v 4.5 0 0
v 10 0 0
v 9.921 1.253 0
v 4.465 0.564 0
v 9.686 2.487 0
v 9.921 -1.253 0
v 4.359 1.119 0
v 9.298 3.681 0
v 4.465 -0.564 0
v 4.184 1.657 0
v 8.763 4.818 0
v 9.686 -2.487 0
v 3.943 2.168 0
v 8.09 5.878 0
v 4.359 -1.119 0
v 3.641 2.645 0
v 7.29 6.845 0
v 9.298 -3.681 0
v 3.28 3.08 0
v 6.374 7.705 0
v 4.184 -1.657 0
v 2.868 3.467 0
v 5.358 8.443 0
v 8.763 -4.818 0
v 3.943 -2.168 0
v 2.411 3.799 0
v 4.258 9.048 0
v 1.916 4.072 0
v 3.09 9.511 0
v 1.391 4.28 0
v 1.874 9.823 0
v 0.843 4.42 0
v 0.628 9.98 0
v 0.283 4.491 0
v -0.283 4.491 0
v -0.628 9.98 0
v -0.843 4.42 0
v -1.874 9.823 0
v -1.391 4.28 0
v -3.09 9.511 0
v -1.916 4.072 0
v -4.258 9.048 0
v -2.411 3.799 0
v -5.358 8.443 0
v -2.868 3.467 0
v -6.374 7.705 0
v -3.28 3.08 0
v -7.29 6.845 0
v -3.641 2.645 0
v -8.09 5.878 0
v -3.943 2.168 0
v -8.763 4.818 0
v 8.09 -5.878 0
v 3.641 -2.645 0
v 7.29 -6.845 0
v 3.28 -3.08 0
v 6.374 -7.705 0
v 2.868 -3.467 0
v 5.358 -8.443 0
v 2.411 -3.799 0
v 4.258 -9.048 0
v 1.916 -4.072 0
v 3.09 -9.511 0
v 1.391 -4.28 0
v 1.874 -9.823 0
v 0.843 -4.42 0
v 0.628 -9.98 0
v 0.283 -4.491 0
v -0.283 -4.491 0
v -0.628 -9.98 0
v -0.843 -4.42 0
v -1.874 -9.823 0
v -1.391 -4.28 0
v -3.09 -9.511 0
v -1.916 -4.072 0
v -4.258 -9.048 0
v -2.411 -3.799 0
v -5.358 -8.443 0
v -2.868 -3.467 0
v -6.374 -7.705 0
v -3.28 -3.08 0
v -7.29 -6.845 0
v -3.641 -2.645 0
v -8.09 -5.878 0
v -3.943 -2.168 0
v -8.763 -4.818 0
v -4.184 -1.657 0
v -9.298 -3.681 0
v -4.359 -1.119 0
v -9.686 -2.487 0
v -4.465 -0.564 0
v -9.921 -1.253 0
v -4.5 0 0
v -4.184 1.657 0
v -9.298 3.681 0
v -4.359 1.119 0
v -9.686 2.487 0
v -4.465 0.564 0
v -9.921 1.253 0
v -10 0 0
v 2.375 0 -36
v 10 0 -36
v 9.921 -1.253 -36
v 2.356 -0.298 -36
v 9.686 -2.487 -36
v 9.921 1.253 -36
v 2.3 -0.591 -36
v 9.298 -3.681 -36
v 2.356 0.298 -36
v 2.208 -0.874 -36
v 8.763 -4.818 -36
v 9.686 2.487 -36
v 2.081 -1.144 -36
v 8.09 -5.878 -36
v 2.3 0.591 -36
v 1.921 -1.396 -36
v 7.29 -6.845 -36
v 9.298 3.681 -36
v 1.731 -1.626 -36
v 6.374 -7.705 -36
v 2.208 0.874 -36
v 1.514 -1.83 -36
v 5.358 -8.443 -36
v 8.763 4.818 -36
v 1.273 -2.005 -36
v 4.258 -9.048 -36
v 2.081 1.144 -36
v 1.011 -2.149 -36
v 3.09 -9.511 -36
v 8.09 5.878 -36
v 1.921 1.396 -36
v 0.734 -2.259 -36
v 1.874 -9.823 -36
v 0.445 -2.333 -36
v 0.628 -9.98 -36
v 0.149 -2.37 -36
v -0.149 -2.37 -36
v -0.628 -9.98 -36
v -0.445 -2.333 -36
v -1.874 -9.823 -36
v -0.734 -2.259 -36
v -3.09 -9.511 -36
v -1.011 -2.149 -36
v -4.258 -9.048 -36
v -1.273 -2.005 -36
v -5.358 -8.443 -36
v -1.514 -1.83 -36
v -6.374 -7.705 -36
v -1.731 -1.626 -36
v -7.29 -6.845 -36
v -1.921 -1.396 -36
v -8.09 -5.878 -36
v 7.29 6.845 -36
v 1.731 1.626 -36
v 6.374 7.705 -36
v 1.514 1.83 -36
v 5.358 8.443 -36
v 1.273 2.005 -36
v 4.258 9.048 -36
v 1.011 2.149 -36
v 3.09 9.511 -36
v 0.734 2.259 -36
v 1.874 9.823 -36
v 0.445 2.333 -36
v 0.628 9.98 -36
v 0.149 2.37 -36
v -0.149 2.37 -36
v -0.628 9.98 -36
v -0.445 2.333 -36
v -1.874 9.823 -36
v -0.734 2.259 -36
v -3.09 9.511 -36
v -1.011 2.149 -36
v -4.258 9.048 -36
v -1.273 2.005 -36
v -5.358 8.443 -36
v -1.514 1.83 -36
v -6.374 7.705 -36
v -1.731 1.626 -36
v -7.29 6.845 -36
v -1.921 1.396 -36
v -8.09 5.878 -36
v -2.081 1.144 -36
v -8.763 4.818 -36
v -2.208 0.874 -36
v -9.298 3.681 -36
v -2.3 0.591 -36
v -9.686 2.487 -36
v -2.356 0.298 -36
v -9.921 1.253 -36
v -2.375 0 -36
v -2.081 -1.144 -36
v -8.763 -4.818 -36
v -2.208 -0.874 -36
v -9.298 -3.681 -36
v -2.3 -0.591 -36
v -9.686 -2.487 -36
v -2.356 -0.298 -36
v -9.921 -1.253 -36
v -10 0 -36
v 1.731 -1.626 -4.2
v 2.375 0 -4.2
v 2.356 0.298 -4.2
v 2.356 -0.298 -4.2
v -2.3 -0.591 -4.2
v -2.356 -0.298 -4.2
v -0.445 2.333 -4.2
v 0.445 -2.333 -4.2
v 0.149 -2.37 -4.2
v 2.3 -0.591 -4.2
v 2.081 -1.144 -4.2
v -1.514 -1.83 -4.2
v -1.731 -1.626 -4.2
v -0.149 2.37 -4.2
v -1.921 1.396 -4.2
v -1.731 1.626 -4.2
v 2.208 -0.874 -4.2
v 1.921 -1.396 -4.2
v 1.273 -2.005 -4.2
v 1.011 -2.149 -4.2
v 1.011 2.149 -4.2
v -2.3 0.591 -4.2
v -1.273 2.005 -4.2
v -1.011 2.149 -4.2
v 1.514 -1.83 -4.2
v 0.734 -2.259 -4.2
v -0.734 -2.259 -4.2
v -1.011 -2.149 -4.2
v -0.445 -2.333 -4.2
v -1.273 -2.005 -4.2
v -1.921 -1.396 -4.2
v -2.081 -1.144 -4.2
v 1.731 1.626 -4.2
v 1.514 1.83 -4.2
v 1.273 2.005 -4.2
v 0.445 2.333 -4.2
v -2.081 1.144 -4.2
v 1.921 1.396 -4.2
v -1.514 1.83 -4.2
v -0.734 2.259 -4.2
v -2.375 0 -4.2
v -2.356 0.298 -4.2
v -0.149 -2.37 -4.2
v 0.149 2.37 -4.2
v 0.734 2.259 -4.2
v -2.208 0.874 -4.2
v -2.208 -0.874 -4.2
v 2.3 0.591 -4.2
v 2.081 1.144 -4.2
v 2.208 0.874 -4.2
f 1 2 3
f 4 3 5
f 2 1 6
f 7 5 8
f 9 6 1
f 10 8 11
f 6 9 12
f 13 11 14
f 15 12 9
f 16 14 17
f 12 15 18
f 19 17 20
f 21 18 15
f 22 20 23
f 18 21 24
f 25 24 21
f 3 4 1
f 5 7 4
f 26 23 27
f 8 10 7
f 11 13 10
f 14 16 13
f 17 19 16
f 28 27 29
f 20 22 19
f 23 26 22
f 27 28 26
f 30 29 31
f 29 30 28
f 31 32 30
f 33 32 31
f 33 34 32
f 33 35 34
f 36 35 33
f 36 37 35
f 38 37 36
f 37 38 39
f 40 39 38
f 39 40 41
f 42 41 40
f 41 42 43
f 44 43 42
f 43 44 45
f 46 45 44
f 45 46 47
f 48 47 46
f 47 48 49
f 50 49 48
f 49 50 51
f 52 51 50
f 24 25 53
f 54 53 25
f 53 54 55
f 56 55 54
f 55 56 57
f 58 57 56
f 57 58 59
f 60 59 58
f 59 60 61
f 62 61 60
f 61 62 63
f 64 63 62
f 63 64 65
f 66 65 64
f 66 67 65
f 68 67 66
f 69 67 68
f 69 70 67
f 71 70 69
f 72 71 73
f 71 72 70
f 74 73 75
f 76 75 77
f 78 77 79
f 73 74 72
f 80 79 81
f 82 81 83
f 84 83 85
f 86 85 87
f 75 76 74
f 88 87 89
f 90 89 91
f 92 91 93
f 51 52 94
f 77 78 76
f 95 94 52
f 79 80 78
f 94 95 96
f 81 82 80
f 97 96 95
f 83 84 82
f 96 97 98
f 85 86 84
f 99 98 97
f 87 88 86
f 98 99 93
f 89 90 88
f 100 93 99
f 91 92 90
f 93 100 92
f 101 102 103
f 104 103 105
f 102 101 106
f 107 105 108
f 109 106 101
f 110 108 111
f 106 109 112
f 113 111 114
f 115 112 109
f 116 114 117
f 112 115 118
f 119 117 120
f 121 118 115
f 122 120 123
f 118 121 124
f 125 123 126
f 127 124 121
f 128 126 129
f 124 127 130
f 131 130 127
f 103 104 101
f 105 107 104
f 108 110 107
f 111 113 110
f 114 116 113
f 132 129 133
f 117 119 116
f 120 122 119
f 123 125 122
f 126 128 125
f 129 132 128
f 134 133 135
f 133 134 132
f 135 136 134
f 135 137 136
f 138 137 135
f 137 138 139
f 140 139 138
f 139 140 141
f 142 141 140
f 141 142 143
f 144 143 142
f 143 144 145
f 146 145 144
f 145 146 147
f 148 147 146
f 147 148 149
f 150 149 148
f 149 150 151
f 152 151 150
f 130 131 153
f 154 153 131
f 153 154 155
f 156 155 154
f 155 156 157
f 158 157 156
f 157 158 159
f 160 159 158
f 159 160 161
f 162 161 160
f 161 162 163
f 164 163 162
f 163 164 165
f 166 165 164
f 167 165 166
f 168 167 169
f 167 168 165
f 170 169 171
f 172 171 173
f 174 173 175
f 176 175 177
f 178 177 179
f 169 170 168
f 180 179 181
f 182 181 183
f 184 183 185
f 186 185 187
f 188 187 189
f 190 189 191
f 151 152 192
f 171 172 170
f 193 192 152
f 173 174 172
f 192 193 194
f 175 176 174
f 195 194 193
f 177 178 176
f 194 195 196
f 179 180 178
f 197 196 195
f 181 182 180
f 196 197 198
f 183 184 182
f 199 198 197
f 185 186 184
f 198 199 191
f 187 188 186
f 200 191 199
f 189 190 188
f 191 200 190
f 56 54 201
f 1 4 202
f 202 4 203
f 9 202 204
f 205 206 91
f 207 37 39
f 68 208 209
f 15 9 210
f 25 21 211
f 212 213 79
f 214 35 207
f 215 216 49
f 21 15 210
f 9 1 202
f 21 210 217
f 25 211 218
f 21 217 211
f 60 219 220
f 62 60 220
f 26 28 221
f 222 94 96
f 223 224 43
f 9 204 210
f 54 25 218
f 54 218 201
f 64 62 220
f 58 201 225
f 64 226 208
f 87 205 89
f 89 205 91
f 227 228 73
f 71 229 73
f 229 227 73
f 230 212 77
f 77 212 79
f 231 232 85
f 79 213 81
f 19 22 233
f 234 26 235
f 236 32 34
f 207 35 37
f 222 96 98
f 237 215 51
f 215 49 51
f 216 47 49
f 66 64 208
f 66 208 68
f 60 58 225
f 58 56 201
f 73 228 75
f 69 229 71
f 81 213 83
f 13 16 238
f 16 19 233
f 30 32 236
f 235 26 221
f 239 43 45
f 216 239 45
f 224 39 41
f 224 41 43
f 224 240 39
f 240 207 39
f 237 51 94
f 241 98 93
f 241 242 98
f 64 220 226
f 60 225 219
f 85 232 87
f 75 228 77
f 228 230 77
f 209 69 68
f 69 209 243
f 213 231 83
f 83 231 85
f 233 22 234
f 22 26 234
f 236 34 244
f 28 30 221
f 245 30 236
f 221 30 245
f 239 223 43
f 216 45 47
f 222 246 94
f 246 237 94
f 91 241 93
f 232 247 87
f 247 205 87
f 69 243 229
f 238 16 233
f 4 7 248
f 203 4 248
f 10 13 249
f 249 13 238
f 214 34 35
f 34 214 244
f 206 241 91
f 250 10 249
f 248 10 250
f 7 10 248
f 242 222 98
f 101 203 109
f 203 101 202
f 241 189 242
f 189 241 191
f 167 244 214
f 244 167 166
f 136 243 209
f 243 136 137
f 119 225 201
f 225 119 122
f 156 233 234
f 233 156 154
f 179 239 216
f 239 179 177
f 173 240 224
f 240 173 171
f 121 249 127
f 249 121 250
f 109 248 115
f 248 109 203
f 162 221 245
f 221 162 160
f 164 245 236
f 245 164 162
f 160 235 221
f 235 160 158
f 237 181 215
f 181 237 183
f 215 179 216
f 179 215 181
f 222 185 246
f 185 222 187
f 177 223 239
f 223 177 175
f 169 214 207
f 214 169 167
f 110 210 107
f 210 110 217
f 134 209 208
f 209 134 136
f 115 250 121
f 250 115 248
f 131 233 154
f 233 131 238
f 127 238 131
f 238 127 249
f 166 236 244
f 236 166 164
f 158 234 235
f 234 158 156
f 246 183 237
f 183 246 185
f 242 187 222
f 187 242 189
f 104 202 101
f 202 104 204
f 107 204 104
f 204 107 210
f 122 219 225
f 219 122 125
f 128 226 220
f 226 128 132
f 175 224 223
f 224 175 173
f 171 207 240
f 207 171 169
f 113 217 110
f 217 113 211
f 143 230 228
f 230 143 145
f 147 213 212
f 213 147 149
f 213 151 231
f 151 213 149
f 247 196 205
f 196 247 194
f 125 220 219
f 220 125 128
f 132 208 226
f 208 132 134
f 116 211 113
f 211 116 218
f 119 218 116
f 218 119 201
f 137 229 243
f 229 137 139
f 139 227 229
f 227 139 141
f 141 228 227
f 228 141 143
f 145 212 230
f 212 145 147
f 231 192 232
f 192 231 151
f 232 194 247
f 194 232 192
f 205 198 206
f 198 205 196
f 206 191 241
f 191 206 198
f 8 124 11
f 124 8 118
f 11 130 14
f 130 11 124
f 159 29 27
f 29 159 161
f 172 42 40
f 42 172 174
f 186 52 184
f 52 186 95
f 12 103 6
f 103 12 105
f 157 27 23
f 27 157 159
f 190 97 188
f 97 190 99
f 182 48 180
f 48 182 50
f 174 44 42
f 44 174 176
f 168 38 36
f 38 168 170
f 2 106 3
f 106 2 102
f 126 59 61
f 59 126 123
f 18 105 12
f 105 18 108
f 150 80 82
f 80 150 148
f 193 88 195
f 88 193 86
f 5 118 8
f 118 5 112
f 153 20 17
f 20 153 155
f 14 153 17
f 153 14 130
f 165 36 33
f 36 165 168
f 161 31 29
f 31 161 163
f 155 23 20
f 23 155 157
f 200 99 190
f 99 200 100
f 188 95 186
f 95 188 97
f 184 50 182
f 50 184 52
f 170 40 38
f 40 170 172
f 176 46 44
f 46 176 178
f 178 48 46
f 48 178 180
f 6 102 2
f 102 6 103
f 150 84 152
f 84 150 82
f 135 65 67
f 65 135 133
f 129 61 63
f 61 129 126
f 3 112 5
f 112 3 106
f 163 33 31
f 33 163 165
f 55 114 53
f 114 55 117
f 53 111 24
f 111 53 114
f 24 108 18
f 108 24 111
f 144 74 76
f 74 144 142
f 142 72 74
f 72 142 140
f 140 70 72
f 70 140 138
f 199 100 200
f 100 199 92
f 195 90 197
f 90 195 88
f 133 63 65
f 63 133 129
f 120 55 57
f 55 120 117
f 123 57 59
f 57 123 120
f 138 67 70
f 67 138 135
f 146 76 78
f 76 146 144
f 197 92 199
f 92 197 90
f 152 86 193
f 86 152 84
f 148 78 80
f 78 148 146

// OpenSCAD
$fn = 50;


difference() {
	union() {
		translate(v = [0, 0, -36.0000000000]) {
			cylinder(h = 36, r = 10.0000000000);
		}
		cylinder(h = 0, r = 20.0000000000);
	}
	union() {
		translate(v = [0, 0, 0]) {
			rotate(a = [0, 0, 0]) {
				difference() {
					union() {
						#translate(v = [0, 0, -36.0000000000]) {
							cylinder(h = 36, r = 2.2500000000);
						}
						#translate(v = [0, 0, -4.2000000000]) {
							cylinder(h = 4.2000000000, r1 = 2.3750000000, r2 = 4.5000000000);
						}
						#translate(v = [0, 0, -36.0000000000]) {
							cylinder(h = 36, r = 2.3750000000);
						}
						#translate(v = [0, 0, -36.0000000000]) {
							cylinder(h = 36, r = 2.2500000000);
						}
					}
					union();
				}
			}
		}
	}
}
